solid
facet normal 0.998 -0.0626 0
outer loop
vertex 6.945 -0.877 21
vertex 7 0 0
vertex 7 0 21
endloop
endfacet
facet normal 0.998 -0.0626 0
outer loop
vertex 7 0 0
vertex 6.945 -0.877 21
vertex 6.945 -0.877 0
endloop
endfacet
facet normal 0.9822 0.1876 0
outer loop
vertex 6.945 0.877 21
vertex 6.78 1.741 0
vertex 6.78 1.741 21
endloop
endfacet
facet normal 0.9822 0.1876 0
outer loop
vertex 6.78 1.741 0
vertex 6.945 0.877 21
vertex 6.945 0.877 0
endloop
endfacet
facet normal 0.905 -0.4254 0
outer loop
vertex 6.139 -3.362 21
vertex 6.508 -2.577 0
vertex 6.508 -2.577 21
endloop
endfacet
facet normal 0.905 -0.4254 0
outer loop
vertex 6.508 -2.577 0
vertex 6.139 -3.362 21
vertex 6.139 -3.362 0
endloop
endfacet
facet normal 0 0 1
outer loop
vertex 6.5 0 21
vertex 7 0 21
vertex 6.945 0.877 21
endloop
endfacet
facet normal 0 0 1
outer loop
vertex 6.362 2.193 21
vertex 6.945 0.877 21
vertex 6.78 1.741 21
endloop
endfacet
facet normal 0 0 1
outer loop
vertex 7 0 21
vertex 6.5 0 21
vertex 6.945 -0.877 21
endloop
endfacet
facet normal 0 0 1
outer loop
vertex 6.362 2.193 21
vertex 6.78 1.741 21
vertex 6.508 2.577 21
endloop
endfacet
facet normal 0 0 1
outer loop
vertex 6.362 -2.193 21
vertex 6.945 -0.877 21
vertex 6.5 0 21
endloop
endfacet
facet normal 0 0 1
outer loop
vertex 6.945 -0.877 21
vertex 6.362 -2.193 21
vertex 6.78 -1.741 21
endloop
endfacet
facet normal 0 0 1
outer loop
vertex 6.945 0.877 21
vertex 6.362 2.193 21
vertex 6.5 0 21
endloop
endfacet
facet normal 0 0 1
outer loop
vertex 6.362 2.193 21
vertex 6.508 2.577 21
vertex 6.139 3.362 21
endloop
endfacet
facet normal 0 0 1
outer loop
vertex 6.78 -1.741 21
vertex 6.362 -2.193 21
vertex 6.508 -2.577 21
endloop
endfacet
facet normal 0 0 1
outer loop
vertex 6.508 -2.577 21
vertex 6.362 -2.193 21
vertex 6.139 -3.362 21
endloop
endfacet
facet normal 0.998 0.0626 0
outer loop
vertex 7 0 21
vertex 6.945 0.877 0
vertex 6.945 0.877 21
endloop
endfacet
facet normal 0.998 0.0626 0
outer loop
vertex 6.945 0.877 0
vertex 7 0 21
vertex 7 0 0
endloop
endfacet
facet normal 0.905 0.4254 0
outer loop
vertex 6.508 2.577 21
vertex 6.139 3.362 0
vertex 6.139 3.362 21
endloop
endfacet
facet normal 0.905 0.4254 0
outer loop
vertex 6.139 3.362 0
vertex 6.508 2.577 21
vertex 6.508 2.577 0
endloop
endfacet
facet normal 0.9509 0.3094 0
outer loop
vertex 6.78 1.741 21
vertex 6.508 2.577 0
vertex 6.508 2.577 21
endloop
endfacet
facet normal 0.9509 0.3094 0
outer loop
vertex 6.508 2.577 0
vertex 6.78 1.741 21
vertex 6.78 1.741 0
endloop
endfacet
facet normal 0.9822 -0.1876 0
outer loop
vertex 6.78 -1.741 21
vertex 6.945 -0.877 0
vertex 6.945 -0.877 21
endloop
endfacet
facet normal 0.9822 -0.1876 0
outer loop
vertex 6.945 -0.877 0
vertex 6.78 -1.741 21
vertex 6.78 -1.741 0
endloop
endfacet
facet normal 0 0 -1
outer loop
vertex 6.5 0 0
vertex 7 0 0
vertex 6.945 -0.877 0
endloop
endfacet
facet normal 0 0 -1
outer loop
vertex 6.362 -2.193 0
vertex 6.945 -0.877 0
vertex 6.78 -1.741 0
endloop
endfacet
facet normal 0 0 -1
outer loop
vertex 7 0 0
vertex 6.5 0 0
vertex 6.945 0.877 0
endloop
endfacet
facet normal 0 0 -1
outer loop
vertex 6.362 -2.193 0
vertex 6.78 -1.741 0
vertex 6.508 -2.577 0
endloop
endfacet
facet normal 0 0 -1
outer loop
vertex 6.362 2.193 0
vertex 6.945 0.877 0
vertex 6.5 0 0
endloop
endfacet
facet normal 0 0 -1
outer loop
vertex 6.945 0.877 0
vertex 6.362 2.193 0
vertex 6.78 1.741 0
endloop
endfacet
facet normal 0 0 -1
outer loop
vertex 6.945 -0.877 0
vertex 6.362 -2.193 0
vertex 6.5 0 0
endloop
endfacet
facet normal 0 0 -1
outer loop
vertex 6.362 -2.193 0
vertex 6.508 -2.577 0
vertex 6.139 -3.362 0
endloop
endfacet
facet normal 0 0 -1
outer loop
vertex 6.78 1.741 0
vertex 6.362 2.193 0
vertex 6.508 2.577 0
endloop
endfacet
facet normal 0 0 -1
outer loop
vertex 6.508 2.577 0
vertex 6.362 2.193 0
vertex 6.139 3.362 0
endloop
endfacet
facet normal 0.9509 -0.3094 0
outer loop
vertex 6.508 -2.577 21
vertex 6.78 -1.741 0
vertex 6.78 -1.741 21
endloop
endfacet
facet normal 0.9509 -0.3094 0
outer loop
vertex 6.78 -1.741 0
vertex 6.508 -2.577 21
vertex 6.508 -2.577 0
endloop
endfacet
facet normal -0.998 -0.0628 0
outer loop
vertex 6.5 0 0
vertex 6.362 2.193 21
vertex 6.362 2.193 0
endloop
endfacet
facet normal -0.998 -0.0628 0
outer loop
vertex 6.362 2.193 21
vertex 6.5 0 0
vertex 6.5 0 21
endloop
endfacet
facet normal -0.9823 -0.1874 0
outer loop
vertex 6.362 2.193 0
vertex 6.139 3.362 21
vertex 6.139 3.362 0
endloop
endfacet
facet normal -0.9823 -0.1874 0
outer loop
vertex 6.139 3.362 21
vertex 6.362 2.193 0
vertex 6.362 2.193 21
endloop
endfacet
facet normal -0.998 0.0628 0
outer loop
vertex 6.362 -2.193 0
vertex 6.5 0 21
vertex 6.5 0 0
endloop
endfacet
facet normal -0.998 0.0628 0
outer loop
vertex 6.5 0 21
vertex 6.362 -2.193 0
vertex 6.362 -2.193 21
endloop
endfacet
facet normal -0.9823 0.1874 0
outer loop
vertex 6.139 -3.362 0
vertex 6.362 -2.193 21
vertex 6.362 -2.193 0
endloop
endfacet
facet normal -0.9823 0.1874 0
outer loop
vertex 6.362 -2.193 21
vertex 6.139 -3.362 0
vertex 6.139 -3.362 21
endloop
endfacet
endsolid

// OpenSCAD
$fn = 50;


difference() {
	union() {
		cylinder(h = 21, r = 7.0000000000);
		translate(v = [-14.0000000000, 0, 0]) {
			cylinder(h = 21, r = 7.0000000000);
		}
	}
	union() {
		cylinder(h = 21, r = 3.2500000000);
		cylinder(h = 21, r = 1.8000000000);
		cylinder(h = 21, r = 1.8000000000);
		cylinder(h = 21, r = 1.8000000000);
		translate(v = [-18.5000000000, 0, 0]) {
			hull() {
				translate(v = [-3.7500000000, 0.0000000000, 0]) {
					cylinder(h = 21, r = 7.5000000000);
				}
				translate(v = [3.7500000000, 0.0000000000, 0]) {
					cylinder(h = 21, r = 7.5000000000);
				}
				translate(v = [-3.7500000000, -0.0000000000, 0]) {
					cylinder(h = 21, r = 7.5000000000);
				}
				translate(v = [3.7500000000, -0.0000000000, 0]) {
					cylinder(h = 21, r = 7.5000000000);
				}
			}
		}
		translate(v = [-11.0000000000, 0, 0.0000000000]) {
			cylinder(h = 21, r = 17.5000000000);
		}
	}
}
